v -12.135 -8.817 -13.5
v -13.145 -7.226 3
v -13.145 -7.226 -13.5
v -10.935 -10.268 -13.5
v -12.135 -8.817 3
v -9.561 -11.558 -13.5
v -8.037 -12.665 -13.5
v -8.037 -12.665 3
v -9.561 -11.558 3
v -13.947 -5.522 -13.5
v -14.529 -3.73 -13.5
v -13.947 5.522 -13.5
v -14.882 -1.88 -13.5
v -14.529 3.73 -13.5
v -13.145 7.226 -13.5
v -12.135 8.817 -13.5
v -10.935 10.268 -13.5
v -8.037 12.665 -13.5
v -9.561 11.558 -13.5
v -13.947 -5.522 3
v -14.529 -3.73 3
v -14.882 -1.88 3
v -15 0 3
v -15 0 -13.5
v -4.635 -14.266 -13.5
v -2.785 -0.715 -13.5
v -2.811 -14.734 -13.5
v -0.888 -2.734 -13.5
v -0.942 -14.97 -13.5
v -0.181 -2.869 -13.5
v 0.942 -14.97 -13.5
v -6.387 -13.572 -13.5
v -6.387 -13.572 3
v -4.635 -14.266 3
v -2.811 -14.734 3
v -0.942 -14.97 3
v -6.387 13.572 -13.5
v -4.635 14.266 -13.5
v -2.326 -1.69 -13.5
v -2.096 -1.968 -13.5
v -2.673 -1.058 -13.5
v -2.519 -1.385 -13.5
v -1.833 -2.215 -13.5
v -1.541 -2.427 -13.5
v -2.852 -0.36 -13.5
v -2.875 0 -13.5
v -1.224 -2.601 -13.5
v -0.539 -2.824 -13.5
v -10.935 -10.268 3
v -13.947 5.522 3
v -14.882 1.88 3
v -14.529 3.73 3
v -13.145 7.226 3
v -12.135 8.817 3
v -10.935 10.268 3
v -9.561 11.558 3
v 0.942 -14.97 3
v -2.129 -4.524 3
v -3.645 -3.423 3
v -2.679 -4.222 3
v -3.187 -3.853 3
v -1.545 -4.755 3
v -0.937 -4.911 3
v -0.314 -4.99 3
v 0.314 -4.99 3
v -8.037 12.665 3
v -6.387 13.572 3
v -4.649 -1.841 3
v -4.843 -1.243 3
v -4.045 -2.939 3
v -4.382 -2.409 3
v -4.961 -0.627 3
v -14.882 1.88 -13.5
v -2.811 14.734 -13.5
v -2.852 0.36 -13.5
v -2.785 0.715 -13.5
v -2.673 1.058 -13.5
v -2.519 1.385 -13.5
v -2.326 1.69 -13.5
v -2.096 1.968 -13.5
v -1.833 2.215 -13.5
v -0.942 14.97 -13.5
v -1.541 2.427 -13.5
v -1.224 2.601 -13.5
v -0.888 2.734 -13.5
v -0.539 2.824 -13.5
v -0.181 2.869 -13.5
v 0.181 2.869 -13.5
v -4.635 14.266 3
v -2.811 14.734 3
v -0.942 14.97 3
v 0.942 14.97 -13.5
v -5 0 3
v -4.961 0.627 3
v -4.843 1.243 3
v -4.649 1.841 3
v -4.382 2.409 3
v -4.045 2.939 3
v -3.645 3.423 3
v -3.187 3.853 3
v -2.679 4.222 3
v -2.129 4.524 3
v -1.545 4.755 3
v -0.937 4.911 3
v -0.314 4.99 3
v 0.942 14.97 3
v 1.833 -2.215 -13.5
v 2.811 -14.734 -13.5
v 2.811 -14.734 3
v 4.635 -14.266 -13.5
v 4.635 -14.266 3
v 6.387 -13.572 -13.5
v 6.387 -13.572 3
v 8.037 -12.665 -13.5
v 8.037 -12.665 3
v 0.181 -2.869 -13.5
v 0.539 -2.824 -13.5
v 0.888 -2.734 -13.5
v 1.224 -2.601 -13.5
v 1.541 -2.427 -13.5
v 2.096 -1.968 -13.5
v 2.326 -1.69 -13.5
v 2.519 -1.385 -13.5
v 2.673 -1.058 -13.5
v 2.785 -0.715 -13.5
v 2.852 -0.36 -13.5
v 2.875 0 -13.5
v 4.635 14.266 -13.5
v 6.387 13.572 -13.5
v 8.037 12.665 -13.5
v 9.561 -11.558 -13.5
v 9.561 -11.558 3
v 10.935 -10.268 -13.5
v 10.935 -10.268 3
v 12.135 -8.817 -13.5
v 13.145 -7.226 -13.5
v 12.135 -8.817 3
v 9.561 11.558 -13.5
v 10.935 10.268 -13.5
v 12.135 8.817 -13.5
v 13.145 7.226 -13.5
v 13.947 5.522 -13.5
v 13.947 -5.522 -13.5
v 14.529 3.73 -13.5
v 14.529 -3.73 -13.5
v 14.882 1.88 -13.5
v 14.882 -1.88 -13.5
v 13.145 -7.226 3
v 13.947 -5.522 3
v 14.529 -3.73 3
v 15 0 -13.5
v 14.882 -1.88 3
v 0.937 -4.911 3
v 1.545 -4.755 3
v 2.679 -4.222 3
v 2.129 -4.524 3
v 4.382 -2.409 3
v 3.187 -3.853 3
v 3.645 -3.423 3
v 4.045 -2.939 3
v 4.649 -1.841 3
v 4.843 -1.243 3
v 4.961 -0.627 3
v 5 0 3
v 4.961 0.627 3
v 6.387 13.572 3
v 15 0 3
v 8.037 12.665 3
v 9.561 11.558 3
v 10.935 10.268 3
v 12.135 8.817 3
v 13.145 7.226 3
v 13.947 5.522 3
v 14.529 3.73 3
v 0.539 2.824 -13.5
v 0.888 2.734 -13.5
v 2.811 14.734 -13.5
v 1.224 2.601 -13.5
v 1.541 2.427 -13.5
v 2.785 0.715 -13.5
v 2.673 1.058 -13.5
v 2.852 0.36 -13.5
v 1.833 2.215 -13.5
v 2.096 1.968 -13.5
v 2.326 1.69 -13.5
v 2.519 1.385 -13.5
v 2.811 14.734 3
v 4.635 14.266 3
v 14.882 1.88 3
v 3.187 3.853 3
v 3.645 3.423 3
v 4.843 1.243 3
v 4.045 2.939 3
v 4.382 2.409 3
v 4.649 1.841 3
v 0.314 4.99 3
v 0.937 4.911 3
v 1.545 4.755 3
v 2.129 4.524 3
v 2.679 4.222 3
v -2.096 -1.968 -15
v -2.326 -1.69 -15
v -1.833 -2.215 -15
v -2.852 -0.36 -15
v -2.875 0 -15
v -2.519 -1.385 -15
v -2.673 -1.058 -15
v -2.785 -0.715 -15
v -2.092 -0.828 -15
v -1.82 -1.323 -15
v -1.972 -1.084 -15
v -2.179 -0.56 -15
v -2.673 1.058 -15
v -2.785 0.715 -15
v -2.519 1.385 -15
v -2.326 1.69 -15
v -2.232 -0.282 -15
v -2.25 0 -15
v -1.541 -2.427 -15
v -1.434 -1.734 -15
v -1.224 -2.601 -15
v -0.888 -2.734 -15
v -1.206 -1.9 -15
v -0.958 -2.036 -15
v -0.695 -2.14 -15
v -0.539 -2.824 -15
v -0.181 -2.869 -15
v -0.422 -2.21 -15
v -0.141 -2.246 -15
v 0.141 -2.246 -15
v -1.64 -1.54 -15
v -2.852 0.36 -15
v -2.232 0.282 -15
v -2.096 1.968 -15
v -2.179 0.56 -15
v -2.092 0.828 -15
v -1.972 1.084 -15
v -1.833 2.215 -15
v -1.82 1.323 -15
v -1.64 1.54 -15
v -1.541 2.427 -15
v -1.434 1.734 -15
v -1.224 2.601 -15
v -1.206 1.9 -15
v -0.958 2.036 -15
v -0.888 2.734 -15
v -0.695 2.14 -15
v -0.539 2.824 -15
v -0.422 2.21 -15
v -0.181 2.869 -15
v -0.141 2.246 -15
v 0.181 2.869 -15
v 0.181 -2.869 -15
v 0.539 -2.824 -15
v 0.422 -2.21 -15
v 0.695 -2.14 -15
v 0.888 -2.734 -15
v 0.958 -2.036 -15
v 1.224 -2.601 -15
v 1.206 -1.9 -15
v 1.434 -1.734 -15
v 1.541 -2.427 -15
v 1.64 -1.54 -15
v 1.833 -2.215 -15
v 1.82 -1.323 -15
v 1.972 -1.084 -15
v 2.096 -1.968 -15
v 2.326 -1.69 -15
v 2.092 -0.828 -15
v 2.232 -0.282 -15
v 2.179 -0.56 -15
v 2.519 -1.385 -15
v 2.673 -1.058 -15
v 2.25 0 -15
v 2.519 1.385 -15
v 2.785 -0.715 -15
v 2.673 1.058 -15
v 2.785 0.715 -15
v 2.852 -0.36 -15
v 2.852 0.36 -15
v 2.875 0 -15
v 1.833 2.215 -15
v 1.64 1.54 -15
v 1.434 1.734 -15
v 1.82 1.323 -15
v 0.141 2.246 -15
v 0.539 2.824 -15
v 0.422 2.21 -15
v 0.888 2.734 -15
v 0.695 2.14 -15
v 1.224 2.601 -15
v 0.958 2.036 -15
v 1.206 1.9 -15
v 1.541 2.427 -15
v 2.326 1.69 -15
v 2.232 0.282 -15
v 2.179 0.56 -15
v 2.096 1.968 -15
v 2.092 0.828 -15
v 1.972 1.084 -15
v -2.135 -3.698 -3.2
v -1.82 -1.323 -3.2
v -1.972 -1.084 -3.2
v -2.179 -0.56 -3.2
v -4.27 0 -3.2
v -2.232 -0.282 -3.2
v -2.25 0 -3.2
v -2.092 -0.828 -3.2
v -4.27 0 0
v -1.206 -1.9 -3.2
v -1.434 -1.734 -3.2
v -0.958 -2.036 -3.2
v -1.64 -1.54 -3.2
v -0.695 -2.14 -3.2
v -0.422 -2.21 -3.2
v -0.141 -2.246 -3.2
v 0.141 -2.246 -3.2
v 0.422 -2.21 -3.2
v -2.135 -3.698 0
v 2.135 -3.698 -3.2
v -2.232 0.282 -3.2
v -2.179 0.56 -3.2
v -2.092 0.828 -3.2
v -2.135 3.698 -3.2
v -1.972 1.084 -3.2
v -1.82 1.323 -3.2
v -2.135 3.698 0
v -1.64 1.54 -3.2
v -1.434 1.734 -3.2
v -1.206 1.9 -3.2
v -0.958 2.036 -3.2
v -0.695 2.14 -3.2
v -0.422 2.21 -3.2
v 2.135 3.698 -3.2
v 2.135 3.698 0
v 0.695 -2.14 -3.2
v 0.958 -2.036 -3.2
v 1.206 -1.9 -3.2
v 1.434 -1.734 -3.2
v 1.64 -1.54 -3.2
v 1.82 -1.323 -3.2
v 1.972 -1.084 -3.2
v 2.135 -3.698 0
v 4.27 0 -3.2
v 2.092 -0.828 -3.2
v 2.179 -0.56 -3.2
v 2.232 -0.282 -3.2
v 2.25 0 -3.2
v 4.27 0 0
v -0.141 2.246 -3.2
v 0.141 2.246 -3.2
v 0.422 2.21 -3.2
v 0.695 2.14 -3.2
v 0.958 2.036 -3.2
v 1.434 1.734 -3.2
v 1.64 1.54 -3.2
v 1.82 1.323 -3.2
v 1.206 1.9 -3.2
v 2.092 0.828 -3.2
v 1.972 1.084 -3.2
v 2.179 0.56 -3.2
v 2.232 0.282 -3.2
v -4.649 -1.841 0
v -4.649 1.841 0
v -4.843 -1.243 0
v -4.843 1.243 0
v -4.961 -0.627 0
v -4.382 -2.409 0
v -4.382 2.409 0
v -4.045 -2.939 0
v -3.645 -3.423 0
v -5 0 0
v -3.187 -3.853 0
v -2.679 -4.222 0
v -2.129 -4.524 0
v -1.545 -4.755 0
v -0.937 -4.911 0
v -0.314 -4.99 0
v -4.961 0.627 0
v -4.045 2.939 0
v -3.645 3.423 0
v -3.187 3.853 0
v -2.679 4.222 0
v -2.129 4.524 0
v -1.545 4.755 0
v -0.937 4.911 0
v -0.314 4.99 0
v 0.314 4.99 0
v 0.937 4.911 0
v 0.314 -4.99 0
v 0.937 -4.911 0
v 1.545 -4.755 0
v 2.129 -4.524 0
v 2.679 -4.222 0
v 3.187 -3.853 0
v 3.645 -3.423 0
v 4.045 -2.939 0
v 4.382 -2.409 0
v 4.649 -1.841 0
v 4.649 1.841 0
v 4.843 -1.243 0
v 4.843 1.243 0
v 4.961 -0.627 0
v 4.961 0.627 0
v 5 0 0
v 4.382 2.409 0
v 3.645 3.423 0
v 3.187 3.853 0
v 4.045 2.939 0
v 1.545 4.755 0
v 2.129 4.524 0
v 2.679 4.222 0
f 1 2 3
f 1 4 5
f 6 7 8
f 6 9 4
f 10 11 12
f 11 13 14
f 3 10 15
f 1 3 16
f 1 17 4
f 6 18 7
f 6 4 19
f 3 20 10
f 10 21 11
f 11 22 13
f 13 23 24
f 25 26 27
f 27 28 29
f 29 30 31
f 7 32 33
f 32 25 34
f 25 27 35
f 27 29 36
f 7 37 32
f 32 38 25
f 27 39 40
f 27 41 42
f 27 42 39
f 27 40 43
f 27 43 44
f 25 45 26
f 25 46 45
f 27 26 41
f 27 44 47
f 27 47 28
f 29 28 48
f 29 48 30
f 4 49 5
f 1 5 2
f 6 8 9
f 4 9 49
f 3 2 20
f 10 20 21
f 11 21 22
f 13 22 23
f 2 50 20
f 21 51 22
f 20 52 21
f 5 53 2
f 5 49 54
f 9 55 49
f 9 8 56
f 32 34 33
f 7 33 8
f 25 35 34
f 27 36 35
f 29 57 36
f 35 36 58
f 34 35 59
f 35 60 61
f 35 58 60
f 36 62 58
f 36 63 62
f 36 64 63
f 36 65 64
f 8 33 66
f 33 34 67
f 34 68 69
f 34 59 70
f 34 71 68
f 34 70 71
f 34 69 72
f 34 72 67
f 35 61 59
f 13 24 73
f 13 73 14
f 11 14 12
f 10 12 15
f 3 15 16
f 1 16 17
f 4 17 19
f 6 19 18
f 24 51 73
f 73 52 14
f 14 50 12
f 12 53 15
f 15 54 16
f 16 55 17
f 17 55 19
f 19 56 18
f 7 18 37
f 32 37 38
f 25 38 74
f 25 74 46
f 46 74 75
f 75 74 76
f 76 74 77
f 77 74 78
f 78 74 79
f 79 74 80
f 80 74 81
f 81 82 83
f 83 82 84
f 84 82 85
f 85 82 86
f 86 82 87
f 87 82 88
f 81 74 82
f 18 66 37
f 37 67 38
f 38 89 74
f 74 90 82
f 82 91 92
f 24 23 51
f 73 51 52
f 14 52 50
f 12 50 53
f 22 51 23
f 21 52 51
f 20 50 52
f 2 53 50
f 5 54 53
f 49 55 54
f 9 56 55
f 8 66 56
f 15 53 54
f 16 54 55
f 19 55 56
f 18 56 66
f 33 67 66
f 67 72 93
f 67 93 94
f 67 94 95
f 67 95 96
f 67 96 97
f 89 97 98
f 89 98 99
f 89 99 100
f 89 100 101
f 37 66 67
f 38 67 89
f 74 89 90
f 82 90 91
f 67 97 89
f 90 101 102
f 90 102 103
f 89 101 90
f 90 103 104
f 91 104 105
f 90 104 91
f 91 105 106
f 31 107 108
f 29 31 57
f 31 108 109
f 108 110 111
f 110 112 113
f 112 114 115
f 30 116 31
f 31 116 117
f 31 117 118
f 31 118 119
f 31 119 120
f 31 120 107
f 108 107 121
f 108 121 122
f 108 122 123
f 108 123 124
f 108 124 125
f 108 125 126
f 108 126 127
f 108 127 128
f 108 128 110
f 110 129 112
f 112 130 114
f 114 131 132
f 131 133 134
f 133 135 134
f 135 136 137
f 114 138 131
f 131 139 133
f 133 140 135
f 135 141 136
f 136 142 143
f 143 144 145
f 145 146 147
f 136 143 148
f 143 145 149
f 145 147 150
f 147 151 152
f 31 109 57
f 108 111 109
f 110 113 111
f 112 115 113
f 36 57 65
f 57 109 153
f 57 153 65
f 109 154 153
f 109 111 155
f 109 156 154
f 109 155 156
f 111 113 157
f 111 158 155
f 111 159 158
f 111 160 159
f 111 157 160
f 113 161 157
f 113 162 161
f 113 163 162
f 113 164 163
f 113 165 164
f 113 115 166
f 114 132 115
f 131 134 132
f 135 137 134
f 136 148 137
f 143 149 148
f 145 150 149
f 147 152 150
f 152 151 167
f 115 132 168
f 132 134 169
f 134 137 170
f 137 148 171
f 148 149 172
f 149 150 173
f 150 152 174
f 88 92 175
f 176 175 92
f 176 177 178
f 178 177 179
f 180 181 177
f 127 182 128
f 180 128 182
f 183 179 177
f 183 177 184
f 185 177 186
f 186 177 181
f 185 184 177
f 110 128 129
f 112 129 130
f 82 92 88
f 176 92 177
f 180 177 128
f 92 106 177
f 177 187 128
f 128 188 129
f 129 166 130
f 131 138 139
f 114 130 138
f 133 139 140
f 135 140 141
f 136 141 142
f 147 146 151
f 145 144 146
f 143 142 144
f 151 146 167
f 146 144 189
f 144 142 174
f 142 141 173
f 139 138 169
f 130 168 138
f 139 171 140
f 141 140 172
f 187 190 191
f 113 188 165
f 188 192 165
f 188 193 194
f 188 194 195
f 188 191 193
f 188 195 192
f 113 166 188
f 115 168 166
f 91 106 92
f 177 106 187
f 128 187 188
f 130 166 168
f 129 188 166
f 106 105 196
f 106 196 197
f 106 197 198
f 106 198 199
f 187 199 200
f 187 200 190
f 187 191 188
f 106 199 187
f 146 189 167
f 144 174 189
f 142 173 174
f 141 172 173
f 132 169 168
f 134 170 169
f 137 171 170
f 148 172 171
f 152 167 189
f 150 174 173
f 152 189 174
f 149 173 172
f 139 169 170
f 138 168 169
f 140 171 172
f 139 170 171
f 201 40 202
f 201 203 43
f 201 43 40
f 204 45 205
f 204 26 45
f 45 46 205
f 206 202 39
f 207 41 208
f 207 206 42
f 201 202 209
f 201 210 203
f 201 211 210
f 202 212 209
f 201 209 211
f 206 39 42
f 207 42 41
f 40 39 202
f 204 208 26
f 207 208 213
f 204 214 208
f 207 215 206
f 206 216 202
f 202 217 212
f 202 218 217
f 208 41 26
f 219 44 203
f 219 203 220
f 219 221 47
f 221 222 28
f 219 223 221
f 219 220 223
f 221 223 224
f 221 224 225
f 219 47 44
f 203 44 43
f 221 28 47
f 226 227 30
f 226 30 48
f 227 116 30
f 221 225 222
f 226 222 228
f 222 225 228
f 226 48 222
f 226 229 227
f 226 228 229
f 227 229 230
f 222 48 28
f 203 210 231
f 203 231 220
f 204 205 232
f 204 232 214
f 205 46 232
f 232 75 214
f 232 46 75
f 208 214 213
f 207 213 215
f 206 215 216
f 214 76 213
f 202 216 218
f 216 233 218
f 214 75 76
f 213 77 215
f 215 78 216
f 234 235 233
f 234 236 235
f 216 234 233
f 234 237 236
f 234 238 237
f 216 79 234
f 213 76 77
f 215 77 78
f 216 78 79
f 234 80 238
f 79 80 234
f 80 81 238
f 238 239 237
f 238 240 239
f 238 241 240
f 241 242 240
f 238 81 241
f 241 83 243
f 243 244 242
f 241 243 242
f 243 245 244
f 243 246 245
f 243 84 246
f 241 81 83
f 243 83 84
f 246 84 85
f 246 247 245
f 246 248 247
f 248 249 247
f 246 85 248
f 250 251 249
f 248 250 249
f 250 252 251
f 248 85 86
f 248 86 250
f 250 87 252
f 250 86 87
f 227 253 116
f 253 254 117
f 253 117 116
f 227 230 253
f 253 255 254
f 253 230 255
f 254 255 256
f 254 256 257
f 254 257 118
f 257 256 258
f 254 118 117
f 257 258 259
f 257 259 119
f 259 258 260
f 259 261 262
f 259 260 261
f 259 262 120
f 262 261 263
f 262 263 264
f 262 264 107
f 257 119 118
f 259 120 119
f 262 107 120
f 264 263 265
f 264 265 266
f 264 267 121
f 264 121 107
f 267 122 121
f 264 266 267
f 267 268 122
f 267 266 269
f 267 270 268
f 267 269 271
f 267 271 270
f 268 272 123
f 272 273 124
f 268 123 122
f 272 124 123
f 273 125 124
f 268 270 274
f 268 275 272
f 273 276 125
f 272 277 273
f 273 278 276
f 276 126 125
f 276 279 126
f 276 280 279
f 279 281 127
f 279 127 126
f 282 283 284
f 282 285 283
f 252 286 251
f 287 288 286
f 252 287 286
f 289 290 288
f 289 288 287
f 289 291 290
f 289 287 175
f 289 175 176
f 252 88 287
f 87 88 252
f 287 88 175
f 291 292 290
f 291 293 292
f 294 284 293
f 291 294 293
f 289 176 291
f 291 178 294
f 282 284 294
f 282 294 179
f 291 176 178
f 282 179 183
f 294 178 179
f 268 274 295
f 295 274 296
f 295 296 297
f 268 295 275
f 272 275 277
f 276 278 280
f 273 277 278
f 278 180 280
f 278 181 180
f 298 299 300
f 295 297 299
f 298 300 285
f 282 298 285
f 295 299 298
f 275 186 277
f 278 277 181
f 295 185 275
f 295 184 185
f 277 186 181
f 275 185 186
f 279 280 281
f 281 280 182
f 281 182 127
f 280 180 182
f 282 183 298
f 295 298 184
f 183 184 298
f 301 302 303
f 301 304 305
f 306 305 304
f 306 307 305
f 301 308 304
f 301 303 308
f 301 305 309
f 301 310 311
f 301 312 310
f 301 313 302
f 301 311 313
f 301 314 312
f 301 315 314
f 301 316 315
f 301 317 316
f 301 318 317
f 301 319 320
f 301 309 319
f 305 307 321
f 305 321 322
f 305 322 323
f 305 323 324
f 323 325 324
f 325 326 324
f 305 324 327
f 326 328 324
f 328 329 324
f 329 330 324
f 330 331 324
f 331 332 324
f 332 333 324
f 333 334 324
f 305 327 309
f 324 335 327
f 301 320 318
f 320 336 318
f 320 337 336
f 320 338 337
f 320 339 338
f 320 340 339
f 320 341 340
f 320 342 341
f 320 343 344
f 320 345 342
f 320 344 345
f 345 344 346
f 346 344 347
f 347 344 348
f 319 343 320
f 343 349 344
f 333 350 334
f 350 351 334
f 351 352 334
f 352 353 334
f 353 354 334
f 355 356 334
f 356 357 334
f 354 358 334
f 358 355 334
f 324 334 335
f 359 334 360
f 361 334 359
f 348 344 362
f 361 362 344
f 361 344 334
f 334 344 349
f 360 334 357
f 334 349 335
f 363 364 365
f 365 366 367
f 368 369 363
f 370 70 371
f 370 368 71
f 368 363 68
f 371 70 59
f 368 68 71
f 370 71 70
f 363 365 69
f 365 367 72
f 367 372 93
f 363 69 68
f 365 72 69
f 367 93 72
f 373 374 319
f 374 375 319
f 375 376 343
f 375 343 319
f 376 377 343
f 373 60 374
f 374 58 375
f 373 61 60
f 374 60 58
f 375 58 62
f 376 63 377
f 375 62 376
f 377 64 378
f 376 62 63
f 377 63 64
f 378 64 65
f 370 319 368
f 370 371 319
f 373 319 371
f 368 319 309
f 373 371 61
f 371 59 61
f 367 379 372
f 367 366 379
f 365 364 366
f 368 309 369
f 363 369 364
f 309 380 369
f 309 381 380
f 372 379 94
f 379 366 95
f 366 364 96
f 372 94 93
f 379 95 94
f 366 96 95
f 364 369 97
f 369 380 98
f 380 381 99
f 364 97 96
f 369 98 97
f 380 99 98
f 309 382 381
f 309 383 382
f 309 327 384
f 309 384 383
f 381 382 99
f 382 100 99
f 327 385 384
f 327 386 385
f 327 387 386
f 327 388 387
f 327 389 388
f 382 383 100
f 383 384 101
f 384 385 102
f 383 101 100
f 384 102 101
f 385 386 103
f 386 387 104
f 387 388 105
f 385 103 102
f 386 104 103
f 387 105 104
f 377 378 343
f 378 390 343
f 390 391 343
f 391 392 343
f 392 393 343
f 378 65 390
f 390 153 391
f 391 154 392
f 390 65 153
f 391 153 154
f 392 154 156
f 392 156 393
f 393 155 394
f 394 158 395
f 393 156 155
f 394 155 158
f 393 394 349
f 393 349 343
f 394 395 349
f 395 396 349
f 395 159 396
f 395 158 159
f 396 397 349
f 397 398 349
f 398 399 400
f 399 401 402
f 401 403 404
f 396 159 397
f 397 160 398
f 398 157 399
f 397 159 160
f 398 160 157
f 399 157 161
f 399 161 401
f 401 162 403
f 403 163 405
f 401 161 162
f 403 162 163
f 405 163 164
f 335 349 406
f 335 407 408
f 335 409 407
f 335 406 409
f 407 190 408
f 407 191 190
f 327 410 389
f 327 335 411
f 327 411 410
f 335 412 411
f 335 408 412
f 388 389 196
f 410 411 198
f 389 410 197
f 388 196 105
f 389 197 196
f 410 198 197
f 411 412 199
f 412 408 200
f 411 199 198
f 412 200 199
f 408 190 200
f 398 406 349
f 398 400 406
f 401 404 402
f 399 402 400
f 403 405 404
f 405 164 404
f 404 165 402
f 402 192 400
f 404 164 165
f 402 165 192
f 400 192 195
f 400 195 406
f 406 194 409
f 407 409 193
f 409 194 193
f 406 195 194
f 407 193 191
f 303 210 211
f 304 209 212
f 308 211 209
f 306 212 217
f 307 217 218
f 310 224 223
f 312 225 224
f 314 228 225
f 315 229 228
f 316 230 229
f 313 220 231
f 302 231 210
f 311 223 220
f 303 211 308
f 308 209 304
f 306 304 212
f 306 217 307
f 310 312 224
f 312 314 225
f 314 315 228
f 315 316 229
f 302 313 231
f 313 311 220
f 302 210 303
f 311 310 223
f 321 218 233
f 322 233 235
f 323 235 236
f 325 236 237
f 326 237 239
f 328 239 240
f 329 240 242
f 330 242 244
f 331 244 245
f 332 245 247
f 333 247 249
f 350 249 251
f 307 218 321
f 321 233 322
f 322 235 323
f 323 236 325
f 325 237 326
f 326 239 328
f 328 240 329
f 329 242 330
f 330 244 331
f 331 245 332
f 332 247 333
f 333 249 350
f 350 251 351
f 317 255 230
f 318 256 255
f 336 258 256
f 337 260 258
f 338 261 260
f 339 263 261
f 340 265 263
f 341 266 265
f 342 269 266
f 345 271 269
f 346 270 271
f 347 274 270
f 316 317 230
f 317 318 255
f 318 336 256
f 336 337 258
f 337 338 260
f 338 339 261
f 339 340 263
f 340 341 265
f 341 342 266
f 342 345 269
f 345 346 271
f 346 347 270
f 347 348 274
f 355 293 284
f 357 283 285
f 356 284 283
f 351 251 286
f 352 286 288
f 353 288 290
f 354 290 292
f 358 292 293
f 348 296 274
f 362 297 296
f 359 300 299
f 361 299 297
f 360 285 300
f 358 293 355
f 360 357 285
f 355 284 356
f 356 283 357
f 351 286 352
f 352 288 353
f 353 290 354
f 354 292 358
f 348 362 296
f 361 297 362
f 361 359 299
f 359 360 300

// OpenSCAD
$fn = 50;


difference() {
	union() {
		translate(v = [0, 0, -13.5000000000]) {
			cylinder(h = 16.5000000000, r = 15.0000000000);
		}
		#translate(v = [0, 0, -15.0000000000]) {
			cylinder(h = 15, r = 2.8750000000);
		}
	}
	union() {
		translate(v = [0, 0, 0]) {
			rotate(a = [0, 0, 0]) {
				difference() {
					union() {
						translate(v = [0, 0, -3.2000000000]) {
							linear_extrude(height = 3.2000000000) {
								polygon(points = [[4.2698000000, 0.0000000000], [2.1349000000, 3.6977552691], [-2.1349000000, 3.6977552691], [-4.2698000000, 0.0000000000], [-2.1349000000, -3.6977552691], [2.1349000000, -3.6977552691]]);
							}
						}
					}
					union();
				}
			}
		}
		#cylinder(h = 3, r = 5.0000000000);
		#translate(v = [0, 0, -100.0000000000]) {
			cylinder(h = 200, r = 2.2500000000);
		}
	}
}
